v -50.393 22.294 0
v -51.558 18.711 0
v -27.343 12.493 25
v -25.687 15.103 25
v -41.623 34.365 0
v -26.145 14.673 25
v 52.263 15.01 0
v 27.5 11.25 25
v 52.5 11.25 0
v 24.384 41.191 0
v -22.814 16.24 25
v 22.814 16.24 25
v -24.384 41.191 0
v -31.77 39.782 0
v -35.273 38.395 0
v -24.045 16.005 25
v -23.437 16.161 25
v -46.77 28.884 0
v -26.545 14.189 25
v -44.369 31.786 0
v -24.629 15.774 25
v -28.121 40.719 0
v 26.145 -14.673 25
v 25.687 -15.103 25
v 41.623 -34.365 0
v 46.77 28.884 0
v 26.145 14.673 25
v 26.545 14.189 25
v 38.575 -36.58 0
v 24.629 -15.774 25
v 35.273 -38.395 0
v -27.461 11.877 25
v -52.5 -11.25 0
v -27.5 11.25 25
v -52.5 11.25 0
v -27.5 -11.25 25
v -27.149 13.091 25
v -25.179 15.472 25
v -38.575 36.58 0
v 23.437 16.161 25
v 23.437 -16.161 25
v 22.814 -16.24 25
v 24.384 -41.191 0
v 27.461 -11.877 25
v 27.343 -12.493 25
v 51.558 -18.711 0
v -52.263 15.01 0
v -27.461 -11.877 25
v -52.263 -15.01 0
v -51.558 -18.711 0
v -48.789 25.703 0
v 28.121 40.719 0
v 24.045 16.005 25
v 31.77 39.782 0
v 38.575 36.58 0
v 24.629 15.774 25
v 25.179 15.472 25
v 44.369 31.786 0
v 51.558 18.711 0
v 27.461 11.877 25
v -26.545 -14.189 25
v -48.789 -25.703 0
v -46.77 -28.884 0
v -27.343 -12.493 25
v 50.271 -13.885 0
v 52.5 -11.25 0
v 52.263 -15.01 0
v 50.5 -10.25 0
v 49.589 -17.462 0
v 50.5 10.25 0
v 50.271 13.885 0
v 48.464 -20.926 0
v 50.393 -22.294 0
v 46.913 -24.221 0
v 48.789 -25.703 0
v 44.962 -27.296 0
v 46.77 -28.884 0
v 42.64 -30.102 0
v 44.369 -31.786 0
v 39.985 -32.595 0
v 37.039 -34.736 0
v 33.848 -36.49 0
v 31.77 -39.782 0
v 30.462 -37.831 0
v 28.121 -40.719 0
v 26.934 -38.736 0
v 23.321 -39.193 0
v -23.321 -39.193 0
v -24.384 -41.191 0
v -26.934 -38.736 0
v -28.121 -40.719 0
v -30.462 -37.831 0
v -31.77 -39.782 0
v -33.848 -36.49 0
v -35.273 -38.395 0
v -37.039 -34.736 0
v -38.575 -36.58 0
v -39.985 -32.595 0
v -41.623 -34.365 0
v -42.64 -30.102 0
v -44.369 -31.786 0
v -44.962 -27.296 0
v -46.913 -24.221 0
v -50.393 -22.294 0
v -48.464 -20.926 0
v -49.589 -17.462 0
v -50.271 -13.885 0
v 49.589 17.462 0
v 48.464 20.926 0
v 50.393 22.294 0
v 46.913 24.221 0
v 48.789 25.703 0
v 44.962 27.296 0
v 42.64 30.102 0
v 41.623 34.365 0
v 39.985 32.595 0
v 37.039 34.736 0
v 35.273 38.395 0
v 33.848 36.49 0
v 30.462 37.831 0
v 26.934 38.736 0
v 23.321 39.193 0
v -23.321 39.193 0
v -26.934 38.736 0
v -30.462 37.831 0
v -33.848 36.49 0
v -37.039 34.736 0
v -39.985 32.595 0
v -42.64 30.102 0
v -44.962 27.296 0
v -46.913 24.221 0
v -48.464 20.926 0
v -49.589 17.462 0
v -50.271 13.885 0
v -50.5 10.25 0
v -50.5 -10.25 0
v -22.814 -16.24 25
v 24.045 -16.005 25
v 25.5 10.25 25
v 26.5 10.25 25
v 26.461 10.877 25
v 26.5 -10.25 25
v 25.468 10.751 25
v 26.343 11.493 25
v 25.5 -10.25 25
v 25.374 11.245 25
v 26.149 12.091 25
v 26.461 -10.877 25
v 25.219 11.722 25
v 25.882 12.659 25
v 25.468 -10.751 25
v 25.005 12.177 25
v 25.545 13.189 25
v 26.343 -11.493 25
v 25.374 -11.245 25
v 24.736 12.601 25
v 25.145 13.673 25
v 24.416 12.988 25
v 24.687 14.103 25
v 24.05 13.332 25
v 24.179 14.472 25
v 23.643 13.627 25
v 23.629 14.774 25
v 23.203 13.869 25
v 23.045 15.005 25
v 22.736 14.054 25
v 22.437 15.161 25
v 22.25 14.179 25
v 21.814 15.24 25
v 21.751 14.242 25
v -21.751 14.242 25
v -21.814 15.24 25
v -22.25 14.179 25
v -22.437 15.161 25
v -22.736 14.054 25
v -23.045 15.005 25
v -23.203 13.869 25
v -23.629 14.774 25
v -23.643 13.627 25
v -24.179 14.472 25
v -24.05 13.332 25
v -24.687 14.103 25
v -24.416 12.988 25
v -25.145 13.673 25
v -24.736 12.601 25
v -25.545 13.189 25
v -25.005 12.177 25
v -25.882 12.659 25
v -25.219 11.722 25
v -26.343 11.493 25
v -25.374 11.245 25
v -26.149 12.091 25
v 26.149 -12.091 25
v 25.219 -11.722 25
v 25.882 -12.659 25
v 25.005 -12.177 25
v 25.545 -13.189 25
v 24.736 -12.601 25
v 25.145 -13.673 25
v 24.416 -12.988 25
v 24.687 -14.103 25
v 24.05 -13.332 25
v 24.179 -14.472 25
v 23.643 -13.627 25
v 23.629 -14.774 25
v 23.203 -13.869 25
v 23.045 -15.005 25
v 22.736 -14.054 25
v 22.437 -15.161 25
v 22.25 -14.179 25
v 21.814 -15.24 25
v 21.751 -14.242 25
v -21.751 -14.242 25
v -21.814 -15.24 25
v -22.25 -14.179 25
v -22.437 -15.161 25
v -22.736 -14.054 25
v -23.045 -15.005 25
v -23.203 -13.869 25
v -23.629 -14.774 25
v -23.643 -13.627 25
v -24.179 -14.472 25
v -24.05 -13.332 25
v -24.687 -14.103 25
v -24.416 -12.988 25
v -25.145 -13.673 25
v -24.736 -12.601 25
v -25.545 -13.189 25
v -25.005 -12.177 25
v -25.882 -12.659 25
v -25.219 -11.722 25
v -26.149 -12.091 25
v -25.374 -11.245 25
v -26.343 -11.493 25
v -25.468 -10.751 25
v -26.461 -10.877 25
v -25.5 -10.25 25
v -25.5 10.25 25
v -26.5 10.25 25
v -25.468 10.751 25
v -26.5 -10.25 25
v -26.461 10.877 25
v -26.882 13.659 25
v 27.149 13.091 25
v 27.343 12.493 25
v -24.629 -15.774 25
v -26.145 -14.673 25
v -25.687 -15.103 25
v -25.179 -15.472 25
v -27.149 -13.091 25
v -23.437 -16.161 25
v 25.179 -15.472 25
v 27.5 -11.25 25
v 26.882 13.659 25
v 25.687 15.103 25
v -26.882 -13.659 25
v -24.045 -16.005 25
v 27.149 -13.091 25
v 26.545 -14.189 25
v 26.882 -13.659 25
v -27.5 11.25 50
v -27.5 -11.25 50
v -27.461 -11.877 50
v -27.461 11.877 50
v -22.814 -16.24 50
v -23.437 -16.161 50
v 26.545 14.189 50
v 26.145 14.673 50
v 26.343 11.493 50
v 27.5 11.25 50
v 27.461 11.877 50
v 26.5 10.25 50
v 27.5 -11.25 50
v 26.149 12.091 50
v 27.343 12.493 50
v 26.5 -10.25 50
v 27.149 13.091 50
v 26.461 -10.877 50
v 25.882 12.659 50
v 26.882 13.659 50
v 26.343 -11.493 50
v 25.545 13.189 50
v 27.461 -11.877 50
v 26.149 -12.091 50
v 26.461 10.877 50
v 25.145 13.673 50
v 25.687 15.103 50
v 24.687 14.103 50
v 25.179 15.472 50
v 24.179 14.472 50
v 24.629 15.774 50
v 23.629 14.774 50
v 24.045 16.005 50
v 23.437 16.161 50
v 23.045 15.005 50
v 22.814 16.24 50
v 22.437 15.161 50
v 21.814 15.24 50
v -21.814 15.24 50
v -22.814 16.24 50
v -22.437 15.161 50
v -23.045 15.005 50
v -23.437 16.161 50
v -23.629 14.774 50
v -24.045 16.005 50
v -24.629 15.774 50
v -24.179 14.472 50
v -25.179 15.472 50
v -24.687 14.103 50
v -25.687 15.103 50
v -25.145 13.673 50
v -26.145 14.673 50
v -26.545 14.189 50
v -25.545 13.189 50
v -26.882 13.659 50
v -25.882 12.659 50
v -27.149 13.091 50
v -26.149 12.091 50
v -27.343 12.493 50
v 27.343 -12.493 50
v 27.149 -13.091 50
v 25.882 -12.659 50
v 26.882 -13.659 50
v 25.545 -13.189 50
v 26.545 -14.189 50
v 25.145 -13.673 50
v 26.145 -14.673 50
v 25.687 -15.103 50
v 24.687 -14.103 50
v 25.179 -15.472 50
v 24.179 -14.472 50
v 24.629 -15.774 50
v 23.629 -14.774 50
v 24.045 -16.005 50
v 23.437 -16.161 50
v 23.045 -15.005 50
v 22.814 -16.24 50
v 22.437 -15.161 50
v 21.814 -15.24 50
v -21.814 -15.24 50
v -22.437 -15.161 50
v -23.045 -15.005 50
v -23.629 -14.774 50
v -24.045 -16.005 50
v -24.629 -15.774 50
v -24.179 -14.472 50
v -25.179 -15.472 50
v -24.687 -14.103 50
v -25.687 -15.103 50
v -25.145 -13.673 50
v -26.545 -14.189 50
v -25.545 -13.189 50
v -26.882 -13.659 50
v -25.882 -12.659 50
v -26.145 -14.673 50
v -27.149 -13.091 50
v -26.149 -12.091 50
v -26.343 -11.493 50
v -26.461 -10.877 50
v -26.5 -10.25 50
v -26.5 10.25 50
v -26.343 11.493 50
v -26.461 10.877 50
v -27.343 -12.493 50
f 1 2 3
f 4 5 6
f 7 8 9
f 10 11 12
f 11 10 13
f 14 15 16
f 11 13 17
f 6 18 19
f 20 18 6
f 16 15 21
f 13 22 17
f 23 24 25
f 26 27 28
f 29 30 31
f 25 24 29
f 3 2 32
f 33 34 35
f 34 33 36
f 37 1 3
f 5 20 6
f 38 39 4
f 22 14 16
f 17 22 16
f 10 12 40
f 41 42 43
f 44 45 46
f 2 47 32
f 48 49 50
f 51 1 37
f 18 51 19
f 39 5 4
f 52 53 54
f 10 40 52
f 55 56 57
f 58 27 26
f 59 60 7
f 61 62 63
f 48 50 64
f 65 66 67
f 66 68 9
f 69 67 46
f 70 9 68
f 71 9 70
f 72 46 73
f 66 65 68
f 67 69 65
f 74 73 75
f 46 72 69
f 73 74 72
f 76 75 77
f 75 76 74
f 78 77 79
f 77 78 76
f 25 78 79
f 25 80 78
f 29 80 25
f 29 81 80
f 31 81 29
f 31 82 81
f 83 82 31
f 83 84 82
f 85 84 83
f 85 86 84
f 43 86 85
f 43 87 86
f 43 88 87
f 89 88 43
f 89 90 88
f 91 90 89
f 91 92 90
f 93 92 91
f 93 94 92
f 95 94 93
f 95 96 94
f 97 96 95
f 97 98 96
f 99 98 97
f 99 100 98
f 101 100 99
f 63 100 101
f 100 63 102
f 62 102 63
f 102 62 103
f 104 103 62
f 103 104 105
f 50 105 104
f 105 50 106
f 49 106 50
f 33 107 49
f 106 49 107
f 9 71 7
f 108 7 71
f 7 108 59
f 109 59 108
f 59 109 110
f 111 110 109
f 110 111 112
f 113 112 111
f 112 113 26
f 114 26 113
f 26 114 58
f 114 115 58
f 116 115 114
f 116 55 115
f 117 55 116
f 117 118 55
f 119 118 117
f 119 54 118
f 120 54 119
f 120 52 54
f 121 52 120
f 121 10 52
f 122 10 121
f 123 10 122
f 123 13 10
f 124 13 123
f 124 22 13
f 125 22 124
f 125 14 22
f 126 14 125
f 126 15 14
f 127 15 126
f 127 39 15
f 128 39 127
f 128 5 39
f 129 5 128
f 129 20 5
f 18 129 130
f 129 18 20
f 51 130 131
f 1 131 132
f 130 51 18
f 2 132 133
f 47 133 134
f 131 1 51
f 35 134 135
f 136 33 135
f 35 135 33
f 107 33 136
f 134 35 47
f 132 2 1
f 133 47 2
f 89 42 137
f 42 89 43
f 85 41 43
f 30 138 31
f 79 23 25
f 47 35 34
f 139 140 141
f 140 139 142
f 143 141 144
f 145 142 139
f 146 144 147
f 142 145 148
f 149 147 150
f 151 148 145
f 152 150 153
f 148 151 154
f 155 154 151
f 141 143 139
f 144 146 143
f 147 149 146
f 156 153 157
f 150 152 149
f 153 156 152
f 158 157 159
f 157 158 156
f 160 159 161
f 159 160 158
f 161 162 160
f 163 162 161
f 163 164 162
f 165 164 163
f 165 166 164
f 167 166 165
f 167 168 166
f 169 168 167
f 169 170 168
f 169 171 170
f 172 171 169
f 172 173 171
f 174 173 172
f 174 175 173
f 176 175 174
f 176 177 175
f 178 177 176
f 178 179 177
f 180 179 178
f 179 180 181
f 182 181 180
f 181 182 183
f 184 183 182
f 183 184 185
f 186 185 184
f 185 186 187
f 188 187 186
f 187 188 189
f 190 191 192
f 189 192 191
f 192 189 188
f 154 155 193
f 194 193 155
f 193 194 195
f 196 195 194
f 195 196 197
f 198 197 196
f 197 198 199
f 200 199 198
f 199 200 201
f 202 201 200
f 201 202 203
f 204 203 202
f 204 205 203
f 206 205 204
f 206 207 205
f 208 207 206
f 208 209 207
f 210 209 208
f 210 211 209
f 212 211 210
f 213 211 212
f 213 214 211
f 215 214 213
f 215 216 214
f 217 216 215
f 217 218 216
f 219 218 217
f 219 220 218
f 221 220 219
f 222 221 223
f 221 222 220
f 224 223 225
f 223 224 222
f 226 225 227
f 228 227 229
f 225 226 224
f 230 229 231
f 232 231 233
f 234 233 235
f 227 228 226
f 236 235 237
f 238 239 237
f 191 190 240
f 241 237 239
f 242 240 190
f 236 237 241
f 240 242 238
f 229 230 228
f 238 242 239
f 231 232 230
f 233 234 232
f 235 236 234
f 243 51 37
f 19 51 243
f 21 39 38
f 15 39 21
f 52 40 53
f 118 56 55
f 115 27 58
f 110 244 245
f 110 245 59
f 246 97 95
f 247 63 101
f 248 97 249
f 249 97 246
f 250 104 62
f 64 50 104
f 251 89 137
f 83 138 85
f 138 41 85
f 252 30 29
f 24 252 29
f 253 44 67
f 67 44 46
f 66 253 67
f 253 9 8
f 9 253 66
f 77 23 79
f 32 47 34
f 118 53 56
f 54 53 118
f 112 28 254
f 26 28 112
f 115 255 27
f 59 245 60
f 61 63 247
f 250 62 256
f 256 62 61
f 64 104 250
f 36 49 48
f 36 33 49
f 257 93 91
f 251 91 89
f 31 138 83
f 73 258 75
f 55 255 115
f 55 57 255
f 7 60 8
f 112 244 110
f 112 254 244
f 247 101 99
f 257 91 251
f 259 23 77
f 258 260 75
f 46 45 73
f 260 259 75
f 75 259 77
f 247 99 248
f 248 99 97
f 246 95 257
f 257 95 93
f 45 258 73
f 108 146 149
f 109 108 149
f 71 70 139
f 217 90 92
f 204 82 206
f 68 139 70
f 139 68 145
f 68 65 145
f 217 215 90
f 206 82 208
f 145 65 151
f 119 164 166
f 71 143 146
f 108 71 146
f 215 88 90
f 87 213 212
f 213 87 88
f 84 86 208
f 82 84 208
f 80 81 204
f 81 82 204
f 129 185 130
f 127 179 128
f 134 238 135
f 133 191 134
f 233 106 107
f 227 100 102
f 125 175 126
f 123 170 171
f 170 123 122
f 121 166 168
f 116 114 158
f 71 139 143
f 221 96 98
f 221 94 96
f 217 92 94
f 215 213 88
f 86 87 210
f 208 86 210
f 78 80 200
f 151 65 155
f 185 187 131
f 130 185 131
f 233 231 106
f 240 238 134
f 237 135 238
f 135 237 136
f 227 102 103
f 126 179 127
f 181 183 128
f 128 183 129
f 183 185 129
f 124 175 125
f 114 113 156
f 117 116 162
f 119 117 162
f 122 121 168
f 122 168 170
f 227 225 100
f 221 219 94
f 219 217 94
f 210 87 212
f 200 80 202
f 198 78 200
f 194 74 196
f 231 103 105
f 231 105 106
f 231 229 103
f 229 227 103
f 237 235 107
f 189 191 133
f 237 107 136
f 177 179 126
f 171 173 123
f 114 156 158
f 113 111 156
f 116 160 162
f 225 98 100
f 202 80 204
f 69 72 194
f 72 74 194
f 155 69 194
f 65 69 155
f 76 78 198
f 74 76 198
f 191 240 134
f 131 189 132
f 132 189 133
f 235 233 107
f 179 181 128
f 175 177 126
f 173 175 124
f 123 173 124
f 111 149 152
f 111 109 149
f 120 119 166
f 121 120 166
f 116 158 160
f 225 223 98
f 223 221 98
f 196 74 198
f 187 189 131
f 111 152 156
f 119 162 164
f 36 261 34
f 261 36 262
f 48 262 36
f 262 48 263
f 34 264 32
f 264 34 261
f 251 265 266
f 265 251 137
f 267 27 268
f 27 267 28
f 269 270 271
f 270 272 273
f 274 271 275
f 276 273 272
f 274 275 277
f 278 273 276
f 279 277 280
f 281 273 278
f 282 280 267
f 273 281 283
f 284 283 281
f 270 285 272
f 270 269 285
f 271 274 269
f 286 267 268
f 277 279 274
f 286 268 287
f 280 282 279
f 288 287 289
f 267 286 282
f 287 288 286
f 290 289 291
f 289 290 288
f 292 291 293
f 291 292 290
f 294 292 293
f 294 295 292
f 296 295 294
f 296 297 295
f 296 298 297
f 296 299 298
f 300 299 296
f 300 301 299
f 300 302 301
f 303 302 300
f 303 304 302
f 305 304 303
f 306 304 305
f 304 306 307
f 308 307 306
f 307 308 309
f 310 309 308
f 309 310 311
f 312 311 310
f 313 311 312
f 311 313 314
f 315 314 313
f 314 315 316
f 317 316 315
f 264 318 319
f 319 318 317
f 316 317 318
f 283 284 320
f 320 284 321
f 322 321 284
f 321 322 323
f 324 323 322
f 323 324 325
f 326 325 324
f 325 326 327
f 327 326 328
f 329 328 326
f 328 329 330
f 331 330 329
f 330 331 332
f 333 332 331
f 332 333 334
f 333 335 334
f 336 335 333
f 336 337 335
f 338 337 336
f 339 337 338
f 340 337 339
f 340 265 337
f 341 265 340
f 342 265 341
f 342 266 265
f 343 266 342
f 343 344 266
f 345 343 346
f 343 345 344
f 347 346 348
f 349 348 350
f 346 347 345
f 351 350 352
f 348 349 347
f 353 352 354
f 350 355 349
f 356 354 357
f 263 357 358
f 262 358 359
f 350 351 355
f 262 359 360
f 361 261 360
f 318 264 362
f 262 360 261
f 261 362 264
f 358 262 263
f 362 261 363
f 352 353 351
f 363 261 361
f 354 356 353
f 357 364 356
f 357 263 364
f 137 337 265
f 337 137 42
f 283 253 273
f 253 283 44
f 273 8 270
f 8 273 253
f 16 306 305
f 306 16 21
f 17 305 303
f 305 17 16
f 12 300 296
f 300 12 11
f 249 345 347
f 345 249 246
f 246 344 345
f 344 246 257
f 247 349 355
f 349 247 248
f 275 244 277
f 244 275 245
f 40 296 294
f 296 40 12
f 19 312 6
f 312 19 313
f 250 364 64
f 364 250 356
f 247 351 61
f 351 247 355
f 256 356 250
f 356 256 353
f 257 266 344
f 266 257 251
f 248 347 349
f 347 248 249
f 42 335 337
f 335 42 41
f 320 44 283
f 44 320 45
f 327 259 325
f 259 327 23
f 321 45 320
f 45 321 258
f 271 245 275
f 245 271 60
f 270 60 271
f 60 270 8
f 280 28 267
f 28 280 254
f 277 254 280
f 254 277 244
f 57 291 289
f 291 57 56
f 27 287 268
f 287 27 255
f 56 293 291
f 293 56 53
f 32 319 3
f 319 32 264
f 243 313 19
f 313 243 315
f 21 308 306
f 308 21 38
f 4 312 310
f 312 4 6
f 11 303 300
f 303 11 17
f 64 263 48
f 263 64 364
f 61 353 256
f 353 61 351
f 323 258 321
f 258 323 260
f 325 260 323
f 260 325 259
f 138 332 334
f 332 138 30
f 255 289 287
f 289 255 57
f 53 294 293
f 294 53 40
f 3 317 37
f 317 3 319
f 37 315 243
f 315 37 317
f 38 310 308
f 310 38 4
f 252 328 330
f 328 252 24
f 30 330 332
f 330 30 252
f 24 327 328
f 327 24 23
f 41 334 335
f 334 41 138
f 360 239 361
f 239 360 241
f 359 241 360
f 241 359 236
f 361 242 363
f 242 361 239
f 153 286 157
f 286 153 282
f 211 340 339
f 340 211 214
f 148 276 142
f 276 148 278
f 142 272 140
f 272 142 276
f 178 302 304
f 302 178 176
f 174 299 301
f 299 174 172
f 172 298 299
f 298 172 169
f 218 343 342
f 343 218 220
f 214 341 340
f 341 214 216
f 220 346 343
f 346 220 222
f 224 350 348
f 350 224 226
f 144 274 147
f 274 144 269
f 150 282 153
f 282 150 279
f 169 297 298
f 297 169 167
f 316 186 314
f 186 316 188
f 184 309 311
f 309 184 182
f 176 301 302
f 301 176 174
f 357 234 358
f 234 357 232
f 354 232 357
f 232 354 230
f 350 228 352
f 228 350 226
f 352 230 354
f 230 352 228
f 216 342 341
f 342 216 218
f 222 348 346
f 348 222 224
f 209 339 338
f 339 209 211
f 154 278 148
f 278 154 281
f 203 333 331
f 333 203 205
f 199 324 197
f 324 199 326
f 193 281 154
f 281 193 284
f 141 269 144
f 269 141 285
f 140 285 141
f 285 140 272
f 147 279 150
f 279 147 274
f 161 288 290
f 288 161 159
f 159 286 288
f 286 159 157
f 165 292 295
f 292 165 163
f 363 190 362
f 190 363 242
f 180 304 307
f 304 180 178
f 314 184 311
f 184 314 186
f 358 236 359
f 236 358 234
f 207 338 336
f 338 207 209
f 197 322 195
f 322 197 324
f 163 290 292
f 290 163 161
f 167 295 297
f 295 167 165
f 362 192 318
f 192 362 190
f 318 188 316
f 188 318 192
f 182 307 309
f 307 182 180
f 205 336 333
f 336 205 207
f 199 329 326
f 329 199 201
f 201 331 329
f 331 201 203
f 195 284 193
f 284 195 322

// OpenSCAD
$fn = 50;


difference() {
	union() {
		translate(v = [0, 0, 0]) {
			rotate(a = [0, 0, 0]) {
				difference() {
					union() {
						hull() {
							translate(v = [-22.5000000000, 11.2500000000, 0]) {
								cylinder(h = 25, r = 5, r1 = 30.0000000000, r2 = 5);
							}
							translate(v = [22.5000000000, 11.2500000000, 0]) {
								cylinder(h = 25, r = 5, r1 = 30.0000000000, r2 = 5);
							}
							translate(v = [-22.5000000000, -11.2500000000, 0]) {
								cylinder(h = 25, r = 5, r1 = 30.0000000000, r2 = 5);
							}
							translate(v = [22.5000000000, -11.2500000000, 0]) {
								cylinder(h = 25, r = 5, r1 = 30.0000000000, r2 = 5);
							}
						}
					}
					union() {
						hull() {
							translate(v = [-21.5000000000, 10.2500000000, 0]) {
								cylinder(h = 25, r = 5, r1 = 29.0000000000, r2 = 4);
							}
							translate(v = [21.5000000000, 10.2500000000, 0]) {
								cylinder(h = 25, r = 5, r1 = 29.0000000000, r2 = 4);
							}
							translate(v = [-21.5000000000, -10.2500000000, 0]) {
								cylinder(h = 25, r = 5, r1 = 29.0000000000, r2 = 4);
							}
							translate(v = [21.5000000000, -10.2500000000, 0]) {
								cylinder(h = 25, r = 5, r1 = 29.0000000000, r2 = 4);
							}
						}
					}
				}
			}
		}
		translate(v = [0, 0, 25]) {
			rotate(a = [0, 0, 0]) {
				difference() {
					union() {
						hull() {
							translate(v = [-22.5000000000, 11.2500000000, 0]) {
								cylinder(h = 25, r = 5);
							}
							translate(v = [22.5000000000, 11.2500000000, 0]) {
								cylinder(h = 25, r = 5);
							}
							translate(v = [-22.5000000000, -11.2500000000, 0]) {
								cylinder(h = 25, r = 5);
							}
							translate(v = [22.5000000000, -11.2500000000, 0]) {
								cylinder(h = 25, r = 5);
							}
						}
					}
					union() {
						hull() {
							translate(v = [-21.5000000000, 10.2500000000, 0]) {
								cylinder(h = 25, r = 5);
							}
							translate(v = [21.5000000000, 10.2500000000, 0]) {
								cylinder(h = 25, r = 5);
							}
							translate(v = [-21.5000000000, -10.2500000000, 0]) {
								cylinder(h = 25, r = 5);
							}
							translate(v = [21.5000000000, -10.2500000000, 0]) {
								cylinder(h = 25, r = 5);
							}
						}
					}
				}
			}
		}
	}
	union();
}
